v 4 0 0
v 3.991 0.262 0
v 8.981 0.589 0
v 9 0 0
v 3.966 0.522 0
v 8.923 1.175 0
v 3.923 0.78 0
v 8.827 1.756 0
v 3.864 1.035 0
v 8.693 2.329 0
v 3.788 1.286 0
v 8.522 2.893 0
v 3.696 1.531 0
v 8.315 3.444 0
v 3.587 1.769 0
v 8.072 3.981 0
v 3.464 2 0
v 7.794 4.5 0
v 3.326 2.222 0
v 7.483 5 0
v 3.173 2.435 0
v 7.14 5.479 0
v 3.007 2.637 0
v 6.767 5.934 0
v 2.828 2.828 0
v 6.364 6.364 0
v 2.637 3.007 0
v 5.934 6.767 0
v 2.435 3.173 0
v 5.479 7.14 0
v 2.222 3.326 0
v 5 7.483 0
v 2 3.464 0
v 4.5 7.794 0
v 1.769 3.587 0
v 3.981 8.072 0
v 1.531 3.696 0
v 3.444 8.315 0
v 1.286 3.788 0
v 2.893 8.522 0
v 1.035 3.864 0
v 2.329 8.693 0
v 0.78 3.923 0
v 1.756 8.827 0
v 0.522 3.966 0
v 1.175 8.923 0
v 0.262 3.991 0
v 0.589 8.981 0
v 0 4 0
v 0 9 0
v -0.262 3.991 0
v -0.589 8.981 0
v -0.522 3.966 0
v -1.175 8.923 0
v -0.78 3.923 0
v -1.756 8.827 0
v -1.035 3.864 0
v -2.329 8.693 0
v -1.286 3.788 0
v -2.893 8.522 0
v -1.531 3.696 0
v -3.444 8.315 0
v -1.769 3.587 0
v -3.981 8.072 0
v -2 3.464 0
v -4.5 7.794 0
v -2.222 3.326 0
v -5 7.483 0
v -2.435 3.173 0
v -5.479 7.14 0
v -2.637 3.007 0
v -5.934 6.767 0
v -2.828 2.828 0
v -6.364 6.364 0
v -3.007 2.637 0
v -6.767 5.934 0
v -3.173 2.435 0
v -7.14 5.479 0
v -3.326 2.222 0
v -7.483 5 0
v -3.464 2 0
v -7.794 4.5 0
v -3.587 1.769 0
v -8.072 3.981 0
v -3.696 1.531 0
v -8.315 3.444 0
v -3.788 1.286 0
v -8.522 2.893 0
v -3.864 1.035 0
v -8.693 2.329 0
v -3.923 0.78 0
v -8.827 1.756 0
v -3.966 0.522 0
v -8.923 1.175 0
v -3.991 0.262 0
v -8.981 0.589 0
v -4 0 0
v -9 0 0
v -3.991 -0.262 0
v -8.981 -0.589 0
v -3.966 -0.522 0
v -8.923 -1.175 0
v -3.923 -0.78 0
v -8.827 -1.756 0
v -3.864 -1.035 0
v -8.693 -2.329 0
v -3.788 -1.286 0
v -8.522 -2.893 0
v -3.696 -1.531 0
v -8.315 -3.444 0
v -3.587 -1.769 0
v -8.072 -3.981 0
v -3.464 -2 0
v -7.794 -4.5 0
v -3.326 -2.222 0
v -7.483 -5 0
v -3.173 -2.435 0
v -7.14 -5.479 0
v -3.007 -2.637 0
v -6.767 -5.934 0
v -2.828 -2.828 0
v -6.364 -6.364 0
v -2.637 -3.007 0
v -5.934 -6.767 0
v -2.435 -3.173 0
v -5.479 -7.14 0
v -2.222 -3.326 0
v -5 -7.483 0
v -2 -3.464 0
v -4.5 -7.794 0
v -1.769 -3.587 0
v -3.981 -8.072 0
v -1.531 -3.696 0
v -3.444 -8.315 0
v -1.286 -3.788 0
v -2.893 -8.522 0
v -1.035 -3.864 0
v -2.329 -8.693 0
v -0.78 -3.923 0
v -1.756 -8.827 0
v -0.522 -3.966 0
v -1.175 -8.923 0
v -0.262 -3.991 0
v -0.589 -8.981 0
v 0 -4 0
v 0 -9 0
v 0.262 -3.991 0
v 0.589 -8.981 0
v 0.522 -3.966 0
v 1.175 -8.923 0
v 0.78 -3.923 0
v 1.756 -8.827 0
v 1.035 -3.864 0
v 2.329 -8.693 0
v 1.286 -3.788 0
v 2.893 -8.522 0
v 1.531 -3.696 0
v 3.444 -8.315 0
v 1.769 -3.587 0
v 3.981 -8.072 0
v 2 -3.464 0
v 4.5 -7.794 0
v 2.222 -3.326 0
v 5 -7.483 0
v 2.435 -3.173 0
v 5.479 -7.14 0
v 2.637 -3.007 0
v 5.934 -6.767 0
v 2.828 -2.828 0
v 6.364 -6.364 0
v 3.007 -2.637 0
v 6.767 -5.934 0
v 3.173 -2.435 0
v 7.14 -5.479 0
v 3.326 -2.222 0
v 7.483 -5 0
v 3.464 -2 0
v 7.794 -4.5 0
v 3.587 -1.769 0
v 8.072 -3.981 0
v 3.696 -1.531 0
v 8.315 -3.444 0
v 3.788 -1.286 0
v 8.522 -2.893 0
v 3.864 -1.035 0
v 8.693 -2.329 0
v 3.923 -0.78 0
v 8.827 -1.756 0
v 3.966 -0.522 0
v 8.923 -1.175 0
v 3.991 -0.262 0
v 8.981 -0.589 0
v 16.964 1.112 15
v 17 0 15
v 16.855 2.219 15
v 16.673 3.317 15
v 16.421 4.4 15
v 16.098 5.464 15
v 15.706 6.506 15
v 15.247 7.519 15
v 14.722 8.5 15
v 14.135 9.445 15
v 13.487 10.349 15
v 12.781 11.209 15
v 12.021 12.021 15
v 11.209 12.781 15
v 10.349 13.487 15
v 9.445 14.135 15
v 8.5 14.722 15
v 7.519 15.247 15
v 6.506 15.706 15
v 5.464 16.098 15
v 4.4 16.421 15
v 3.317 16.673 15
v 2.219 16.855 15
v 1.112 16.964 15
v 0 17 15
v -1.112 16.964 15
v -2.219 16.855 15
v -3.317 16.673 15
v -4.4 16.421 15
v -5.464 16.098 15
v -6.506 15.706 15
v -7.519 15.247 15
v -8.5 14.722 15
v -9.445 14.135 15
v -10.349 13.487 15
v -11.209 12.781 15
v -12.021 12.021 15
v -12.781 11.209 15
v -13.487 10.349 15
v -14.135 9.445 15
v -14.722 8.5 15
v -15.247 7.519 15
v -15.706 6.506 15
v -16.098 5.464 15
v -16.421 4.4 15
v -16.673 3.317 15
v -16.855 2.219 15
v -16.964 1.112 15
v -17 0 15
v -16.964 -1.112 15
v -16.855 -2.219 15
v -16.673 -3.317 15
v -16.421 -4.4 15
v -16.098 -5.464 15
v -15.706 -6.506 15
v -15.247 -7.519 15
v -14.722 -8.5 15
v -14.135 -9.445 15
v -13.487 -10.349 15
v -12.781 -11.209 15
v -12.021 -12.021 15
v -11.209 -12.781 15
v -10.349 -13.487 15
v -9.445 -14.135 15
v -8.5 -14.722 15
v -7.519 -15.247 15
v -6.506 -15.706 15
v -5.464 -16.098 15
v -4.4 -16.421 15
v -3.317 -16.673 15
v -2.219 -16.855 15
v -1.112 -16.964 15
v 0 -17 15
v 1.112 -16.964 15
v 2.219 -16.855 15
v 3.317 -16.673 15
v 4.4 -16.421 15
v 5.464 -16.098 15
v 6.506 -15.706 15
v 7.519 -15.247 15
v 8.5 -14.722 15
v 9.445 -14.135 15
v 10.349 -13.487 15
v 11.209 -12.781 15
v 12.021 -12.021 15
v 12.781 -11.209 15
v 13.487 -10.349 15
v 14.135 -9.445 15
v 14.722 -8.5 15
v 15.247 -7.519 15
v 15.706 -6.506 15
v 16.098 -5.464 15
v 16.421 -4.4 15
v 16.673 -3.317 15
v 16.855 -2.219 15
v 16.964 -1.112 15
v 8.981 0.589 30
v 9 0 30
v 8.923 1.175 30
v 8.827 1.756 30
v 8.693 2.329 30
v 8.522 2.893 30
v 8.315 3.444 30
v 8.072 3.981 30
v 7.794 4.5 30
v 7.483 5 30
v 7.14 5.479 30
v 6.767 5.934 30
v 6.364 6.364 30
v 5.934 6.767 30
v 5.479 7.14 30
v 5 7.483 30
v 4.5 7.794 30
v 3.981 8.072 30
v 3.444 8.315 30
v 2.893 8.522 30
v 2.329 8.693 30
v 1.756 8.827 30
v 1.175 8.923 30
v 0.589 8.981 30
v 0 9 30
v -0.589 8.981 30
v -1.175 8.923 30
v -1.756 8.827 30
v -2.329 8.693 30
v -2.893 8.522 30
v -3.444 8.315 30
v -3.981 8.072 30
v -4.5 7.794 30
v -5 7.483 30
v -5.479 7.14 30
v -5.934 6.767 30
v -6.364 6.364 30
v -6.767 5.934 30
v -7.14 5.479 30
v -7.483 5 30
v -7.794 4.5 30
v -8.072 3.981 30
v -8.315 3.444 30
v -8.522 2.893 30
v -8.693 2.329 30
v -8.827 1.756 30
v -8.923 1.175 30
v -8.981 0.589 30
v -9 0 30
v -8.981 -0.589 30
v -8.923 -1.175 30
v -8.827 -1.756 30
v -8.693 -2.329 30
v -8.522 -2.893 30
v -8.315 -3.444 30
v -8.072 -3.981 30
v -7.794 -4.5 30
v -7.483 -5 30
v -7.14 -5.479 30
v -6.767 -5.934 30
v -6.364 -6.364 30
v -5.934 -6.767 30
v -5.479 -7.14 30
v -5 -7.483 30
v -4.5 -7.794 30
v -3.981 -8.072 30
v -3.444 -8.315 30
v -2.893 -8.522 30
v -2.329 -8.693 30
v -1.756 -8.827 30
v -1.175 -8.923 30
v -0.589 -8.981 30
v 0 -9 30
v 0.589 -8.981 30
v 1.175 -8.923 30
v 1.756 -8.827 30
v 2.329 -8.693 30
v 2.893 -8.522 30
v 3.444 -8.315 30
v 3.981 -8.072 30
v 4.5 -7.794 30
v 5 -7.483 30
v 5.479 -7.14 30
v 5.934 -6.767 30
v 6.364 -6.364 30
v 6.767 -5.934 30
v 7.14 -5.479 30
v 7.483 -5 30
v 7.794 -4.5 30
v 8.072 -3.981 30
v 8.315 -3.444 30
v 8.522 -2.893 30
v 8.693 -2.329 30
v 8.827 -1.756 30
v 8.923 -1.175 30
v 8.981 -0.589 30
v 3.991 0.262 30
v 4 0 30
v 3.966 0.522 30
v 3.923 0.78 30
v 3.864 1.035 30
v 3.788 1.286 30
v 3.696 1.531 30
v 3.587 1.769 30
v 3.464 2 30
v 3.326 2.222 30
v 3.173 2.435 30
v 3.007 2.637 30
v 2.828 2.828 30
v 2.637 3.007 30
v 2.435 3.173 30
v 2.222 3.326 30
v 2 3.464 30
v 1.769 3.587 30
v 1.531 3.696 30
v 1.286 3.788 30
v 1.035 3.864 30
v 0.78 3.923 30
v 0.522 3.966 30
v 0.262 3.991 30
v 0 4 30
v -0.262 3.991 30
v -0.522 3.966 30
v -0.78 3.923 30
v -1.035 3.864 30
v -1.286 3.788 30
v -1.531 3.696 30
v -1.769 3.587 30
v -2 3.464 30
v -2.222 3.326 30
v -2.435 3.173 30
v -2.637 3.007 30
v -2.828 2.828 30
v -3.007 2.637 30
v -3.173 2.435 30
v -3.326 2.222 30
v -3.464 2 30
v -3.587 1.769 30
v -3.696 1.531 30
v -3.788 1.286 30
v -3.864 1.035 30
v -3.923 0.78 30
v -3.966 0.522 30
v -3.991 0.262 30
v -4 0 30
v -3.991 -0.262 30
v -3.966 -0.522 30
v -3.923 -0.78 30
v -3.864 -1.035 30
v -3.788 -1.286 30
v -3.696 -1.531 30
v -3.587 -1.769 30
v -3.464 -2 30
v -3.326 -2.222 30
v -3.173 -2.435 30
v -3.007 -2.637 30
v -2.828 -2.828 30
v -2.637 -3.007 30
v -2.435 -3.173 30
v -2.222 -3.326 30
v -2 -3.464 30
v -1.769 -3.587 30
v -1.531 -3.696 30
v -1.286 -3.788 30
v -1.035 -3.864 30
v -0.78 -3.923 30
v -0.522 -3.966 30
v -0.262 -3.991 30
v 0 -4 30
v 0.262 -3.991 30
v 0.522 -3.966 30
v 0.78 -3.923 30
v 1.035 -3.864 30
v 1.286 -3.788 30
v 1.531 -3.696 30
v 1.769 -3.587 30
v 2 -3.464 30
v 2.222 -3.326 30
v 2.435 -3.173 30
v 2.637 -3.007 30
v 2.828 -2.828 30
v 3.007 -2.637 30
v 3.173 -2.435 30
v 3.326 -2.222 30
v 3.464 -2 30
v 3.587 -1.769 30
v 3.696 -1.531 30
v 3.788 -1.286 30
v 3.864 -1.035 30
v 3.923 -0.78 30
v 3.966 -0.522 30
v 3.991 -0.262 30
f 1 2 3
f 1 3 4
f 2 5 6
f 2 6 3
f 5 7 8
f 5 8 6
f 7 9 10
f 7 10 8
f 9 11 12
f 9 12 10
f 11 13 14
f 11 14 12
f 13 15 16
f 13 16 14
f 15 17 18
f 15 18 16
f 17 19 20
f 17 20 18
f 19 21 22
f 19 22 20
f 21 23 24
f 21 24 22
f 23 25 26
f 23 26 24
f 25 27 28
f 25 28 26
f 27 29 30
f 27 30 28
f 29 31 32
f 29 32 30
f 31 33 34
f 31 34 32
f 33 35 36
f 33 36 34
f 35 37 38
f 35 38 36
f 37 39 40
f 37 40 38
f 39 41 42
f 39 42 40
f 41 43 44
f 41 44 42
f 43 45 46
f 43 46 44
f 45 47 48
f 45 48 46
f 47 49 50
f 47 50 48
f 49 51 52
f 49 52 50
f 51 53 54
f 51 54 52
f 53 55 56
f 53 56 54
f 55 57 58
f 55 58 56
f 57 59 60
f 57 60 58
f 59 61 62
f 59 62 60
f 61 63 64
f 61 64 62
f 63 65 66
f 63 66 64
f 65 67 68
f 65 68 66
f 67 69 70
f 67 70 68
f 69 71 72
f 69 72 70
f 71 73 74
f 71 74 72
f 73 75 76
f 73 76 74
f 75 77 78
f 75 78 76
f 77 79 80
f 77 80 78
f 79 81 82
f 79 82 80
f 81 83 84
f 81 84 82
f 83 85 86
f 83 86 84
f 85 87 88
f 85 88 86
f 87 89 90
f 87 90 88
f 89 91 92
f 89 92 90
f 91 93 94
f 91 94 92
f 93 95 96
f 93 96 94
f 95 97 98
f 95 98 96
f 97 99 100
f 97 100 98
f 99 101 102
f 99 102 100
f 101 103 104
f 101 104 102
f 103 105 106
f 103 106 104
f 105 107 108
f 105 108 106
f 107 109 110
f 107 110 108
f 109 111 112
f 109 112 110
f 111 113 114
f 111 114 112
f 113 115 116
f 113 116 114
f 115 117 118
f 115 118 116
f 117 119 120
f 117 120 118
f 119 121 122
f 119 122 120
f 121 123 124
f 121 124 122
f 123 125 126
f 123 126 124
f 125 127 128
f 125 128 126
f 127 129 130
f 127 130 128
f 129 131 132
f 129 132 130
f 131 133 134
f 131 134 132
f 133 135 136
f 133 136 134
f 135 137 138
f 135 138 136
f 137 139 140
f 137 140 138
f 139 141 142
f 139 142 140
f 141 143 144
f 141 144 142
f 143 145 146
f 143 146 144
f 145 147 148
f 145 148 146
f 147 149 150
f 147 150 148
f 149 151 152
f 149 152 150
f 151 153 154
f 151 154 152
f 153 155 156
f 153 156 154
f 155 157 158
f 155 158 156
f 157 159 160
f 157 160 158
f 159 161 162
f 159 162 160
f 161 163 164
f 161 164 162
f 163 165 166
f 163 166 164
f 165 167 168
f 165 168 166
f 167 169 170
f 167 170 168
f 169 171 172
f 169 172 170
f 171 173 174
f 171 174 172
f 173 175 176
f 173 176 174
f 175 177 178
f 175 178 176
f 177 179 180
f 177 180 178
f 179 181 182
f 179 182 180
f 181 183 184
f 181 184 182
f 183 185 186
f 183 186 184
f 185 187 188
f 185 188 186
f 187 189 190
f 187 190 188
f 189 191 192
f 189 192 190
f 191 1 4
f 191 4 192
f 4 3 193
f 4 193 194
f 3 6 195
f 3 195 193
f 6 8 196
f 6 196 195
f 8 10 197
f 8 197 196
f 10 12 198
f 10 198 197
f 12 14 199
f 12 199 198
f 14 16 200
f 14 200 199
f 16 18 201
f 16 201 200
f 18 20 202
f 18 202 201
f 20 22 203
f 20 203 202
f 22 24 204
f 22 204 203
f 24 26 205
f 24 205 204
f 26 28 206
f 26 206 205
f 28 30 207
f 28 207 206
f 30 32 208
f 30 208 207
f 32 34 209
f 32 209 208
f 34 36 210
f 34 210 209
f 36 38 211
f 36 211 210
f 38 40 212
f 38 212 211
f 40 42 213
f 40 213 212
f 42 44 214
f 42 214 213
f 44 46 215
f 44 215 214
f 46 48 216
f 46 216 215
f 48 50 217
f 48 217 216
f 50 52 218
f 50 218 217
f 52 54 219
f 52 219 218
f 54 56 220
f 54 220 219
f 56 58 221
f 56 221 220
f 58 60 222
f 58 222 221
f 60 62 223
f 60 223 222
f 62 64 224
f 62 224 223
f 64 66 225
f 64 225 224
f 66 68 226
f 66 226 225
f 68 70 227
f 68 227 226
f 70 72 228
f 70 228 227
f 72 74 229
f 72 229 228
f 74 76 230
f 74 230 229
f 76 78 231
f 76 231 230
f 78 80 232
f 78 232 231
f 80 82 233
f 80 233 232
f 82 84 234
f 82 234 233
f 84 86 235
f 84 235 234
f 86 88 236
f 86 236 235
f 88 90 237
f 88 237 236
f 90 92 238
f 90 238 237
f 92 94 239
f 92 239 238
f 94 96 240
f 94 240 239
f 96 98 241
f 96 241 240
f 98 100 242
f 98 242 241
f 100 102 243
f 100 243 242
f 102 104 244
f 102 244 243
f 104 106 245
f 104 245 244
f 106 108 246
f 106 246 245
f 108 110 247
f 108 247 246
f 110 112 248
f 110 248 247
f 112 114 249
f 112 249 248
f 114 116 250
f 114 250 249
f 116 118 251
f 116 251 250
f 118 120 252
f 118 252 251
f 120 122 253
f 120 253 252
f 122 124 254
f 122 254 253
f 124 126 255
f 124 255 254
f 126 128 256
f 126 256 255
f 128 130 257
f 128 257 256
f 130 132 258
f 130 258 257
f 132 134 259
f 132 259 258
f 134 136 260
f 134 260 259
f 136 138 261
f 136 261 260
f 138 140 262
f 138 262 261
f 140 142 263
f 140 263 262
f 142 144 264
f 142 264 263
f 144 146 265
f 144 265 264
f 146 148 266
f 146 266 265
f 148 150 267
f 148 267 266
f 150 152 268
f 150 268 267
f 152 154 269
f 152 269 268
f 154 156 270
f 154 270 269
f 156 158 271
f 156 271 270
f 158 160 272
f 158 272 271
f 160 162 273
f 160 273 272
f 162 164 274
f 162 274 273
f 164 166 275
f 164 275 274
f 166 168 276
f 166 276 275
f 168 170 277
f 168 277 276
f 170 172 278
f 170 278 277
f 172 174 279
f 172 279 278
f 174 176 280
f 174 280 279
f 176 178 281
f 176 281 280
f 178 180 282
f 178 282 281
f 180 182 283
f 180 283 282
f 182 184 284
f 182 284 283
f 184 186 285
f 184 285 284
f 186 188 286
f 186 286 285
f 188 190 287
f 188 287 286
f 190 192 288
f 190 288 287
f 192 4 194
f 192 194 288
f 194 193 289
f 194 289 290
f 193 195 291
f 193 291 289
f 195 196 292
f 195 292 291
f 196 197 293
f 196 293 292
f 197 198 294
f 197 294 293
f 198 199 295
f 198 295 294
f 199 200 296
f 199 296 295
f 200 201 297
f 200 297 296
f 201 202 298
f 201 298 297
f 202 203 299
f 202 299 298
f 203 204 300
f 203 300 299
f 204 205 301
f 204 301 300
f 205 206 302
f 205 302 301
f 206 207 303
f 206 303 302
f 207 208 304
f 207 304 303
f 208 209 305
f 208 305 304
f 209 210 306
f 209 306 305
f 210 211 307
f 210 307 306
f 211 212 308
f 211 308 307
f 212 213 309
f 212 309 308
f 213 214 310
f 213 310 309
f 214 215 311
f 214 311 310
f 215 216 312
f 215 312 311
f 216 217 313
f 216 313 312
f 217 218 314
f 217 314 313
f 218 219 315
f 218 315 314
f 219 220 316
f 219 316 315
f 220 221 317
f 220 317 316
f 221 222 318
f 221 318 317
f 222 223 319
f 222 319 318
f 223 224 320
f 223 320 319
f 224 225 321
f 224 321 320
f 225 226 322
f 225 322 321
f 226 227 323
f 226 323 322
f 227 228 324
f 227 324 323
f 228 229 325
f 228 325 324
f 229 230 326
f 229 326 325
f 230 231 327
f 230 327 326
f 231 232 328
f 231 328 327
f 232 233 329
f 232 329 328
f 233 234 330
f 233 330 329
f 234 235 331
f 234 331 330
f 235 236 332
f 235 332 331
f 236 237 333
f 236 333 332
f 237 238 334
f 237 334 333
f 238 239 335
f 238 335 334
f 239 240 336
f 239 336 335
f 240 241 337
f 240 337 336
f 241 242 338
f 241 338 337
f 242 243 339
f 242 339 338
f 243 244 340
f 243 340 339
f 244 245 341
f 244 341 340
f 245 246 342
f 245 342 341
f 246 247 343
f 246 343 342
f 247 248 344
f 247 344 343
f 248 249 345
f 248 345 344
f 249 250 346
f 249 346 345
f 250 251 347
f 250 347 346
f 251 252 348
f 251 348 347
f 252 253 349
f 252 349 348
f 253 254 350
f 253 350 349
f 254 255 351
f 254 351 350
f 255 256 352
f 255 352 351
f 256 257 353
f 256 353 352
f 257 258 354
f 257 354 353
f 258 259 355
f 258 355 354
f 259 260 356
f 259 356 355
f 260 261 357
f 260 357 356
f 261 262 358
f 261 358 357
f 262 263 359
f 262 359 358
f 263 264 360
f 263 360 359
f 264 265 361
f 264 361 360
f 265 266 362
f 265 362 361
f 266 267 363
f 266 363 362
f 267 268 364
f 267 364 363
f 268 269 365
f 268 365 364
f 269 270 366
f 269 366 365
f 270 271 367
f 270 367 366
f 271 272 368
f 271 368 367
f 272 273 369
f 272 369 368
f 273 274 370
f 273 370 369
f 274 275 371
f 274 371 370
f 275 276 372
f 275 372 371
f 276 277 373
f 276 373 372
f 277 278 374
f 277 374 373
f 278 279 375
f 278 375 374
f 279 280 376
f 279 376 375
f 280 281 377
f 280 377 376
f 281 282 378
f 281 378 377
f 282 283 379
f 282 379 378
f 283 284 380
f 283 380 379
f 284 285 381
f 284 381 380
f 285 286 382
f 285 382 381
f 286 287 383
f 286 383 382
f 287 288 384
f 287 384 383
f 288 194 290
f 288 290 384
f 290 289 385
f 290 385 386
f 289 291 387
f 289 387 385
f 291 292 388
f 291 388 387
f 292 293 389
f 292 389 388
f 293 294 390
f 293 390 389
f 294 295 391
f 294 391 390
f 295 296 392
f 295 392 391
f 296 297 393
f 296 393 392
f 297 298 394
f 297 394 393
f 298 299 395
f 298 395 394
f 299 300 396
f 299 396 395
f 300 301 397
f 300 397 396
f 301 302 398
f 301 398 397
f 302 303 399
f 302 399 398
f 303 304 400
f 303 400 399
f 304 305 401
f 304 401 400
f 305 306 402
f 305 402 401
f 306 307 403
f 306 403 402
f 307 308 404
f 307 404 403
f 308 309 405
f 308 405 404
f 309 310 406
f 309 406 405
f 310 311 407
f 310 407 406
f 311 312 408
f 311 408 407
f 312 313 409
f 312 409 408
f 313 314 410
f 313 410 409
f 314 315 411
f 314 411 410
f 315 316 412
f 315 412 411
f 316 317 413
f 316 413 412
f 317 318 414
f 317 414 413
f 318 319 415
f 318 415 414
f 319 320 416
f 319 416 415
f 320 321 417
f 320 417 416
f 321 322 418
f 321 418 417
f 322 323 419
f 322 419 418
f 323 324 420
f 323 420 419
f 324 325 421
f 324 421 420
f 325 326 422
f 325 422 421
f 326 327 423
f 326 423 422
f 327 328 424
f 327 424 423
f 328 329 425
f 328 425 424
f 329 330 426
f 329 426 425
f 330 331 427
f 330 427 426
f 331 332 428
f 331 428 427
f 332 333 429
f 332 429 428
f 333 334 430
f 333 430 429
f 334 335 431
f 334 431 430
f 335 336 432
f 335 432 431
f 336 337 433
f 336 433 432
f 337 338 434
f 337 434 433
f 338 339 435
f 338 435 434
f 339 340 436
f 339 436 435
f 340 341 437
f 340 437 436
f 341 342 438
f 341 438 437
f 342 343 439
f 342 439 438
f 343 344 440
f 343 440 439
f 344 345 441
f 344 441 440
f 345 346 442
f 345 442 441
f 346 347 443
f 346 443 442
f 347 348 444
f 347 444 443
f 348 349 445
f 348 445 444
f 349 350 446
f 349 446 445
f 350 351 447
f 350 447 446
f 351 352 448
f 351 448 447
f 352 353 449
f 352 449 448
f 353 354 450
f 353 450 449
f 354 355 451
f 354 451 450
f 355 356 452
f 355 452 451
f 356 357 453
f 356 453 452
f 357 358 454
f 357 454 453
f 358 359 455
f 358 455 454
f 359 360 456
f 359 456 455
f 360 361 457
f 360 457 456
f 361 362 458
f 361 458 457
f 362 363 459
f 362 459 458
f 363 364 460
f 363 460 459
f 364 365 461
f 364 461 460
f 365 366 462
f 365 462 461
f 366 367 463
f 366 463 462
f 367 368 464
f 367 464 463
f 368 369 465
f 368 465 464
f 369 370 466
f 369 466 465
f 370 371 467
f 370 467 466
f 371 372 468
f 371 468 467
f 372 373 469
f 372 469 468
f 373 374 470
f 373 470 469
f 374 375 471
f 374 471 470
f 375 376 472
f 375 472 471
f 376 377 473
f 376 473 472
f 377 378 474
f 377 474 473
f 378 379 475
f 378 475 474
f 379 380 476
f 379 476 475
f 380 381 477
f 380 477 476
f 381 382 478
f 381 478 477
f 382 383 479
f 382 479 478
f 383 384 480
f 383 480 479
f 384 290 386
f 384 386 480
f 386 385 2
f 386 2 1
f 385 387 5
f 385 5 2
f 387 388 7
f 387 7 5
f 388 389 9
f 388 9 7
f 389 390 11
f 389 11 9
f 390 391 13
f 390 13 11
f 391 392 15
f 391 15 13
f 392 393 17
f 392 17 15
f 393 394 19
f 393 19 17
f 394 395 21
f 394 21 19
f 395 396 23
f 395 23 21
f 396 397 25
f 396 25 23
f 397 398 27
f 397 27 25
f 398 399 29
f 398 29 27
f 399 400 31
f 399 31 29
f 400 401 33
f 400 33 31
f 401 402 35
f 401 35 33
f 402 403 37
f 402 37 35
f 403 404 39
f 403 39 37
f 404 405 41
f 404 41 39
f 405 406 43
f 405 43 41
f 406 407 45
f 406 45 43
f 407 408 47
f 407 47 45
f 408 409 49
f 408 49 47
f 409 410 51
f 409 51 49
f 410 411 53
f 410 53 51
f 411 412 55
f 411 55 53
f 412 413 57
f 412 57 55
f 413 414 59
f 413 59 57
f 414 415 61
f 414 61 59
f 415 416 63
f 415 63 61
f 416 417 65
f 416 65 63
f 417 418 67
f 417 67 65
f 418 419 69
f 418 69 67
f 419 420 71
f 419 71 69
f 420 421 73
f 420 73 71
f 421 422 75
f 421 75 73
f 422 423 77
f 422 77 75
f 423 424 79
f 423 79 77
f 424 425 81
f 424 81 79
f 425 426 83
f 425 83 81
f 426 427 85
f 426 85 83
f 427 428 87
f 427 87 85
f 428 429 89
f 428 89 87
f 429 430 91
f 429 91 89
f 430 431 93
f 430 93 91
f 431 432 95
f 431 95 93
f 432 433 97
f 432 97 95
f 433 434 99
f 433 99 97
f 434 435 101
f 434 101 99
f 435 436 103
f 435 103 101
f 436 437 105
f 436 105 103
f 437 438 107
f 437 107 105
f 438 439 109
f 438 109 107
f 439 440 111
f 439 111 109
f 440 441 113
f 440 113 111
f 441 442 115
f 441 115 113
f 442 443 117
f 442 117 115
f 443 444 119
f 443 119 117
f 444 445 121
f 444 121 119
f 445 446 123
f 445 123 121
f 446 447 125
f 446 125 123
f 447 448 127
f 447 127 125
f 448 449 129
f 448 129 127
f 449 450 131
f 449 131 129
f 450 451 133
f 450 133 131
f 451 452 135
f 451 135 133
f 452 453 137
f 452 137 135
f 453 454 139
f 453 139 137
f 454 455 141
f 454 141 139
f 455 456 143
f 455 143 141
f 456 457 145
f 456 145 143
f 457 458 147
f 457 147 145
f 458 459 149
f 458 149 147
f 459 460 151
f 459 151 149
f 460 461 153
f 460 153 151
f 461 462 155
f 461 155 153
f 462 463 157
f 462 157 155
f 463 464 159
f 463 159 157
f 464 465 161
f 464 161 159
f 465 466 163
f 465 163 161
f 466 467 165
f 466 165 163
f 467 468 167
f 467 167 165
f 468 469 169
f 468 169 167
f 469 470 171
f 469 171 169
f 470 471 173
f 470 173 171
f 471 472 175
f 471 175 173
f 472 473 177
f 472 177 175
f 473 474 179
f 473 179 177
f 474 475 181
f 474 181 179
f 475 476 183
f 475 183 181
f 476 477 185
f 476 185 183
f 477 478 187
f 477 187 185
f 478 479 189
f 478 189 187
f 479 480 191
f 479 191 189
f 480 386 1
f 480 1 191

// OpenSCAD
// Original MechIntel educational model. CC0-1.0. Units: mm.
// Not a standardized or load-rated component.
$fn=96;
// Section points: [radius, height], mm. Edit to change the profile.
section=[[4, 0], [9, 0], [17, 15], [9, 30], [4, 30]];
rotate_extrude($fn=96) polygon(points=section);
